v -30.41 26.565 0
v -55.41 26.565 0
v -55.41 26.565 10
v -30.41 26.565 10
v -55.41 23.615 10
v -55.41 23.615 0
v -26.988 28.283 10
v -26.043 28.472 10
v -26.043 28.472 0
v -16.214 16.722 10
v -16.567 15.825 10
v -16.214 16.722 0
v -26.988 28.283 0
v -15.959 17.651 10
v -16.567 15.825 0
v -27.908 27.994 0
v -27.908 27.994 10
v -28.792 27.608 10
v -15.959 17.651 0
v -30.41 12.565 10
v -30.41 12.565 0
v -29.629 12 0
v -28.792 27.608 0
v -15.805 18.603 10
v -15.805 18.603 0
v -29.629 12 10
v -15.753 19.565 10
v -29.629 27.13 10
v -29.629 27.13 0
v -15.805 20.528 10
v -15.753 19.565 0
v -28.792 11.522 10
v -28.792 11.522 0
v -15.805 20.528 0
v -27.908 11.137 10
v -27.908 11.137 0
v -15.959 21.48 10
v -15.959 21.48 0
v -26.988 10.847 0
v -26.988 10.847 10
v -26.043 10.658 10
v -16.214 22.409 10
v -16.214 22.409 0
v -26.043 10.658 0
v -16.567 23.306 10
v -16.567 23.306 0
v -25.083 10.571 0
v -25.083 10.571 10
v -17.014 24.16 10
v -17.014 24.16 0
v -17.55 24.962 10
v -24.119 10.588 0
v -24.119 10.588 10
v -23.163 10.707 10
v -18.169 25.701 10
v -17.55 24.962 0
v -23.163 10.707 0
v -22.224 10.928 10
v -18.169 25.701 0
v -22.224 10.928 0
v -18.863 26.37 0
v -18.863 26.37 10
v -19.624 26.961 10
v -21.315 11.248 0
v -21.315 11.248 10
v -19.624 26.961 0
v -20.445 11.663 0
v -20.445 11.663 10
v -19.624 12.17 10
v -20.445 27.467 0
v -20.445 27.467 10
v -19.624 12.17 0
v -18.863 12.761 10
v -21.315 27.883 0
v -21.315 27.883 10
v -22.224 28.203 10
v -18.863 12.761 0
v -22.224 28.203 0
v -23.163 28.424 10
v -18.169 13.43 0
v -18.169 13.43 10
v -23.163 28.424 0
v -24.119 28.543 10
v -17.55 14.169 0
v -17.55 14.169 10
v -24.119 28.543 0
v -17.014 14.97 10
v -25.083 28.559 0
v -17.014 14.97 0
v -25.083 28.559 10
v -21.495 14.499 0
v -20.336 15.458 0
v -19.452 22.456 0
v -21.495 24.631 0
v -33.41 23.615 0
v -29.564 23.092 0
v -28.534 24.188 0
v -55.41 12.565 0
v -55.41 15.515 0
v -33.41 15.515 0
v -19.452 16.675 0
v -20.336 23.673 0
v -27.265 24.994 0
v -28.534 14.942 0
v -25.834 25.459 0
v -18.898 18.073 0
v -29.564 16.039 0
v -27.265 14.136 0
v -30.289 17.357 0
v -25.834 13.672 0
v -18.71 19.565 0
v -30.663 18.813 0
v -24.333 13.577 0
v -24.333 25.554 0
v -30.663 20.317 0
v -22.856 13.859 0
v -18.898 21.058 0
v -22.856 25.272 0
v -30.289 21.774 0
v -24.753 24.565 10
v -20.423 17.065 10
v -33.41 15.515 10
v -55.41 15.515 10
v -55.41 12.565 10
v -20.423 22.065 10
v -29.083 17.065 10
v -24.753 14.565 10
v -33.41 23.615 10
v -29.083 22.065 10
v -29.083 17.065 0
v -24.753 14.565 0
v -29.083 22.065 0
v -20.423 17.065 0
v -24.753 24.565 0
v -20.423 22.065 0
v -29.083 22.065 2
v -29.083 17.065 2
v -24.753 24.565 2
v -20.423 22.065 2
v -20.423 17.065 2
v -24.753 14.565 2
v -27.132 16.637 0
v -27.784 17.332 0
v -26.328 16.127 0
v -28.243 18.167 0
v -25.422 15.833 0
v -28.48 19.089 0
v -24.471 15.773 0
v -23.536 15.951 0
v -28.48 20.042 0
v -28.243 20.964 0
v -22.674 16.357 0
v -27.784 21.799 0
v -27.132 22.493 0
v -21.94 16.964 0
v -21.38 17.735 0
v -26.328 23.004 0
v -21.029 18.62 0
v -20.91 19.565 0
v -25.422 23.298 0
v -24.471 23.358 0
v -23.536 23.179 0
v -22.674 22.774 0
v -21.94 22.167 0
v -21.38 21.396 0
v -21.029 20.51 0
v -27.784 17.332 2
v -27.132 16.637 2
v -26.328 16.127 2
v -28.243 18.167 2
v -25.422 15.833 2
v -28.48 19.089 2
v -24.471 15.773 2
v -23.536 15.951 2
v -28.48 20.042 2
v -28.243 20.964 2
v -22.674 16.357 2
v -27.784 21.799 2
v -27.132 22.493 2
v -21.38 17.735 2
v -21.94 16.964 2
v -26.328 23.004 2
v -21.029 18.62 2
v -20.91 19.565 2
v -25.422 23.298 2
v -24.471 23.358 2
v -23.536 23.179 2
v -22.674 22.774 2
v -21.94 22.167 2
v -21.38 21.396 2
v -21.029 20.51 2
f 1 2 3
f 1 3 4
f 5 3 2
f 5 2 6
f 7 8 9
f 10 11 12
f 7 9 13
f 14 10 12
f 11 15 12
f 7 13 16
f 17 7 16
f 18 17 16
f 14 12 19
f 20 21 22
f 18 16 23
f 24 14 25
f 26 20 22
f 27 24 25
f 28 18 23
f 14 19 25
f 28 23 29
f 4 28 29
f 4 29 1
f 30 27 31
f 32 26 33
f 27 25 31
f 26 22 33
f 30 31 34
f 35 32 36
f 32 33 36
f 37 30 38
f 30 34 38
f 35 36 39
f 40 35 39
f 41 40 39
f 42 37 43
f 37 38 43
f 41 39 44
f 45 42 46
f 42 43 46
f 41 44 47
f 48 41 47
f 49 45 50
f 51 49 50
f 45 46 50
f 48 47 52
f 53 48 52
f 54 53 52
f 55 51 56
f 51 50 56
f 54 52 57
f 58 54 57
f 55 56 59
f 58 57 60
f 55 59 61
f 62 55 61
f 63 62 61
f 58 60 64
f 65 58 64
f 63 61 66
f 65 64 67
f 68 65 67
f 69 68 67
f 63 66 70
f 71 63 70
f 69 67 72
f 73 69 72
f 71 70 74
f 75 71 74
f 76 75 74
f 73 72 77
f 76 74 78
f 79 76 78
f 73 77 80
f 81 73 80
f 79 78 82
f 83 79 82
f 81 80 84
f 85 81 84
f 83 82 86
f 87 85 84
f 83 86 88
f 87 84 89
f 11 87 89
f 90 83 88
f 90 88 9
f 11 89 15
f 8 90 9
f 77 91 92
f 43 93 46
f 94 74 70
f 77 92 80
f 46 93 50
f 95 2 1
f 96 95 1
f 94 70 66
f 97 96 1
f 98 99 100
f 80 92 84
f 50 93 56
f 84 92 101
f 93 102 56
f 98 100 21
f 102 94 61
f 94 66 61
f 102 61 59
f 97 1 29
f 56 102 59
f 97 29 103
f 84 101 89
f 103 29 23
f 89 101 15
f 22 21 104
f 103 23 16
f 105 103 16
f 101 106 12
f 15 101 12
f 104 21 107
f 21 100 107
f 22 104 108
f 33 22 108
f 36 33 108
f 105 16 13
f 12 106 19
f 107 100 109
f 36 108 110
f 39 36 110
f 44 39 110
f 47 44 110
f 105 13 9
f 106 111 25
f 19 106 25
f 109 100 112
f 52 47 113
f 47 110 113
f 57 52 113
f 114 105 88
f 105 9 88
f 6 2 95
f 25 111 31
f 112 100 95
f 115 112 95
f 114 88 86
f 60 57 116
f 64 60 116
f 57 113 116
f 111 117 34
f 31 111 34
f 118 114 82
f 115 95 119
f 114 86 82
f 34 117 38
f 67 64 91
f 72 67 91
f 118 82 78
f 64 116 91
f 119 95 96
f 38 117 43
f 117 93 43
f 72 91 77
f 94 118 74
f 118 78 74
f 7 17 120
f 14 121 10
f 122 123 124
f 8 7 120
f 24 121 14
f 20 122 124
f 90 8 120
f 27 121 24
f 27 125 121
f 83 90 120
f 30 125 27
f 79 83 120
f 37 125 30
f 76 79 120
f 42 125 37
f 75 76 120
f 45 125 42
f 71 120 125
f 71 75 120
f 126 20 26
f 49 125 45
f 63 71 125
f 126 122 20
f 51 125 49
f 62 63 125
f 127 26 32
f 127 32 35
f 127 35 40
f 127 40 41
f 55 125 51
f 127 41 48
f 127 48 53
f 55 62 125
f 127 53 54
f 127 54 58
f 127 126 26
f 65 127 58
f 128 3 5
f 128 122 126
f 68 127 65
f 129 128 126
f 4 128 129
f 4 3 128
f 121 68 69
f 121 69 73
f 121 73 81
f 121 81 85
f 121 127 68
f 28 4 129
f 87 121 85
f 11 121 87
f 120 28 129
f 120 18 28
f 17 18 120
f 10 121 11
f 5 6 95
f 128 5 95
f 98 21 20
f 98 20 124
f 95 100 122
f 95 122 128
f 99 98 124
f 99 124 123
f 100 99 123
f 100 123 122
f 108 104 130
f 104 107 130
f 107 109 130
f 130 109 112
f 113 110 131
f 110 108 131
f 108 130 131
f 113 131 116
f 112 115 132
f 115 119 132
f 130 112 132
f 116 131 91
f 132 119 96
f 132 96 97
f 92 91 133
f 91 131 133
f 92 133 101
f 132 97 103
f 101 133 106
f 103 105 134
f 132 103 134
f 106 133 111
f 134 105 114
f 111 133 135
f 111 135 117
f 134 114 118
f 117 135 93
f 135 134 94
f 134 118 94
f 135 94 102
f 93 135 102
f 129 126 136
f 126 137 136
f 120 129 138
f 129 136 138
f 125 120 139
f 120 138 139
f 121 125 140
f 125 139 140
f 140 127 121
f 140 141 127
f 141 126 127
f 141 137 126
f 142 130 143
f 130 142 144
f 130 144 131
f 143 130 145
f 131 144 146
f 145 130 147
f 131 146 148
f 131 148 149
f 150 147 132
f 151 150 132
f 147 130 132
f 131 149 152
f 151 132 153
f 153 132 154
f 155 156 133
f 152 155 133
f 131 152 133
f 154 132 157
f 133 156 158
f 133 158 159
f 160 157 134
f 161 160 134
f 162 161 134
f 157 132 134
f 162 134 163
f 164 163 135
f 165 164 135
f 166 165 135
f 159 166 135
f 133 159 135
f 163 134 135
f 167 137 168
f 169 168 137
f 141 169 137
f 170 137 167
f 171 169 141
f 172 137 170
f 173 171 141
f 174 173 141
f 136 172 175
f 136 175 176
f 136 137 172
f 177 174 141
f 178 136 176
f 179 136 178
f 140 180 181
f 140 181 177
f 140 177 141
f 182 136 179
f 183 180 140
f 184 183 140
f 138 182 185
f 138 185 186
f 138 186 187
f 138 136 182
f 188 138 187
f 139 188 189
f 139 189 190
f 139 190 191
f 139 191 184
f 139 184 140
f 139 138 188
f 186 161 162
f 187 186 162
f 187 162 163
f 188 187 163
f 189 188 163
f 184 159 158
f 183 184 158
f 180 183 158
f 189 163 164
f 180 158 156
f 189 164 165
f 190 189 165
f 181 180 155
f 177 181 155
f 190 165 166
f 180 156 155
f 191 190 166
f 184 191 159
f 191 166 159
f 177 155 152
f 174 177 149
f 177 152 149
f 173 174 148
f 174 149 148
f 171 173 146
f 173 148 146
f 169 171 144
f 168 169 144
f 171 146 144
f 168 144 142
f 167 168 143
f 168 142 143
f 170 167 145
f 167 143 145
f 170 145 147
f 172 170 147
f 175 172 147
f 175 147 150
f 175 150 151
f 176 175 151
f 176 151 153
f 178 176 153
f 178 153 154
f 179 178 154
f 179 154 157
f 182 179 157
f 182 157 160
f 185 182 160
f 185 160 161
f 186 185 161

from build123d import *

# Parameters (mm, degrees)
PAD_DEPTH     = 10
SKETCH001_R   = 6
SKETCH001_R_2 = 3.8
PAD001_DEPTH  = 2


with BuildPart() as part:
    # Sketch → Pad (new body)
    with BuildSketch(Plane.XY):
        with BuildLine():
            Line((-55.40988, 26.565392), (-30.40988, 26.565392))
            ThreePointArc((-30.40988, 12.565392), (-15.753026, 19.565392), (-30.40988, 26.565392))
            Line((-30.40988, 12.565392), (-55.40988, 12.565392))
            Line((-55.40988, 12.565392), (-55.40988, 15.515392))
            Line((-55.40988, 15.515392), (-33.40988, 15.515392))
            Line((-33.40988, 15.515392), (-33.40988, 23.615392))
            Line((-55.40988, 23.615392), (-33.40988, 23.615392))
            Line((-55.40988, 26.565392), (-55.40988, 23.615392))
        make_face()
        Polygon((-20.422899, 22.065392), (-20.422899, 17.065392), (-24.753026, 14.565392), (-29.083153, 17.065392), (-29.083153, 22.065392), (-24.753026, 24.565392), align=None, mode=Mode.SUBTRACT)
    extrude(amount=PAD_DEPTH)

    # Sketch001 → Pad001 (new body)
    with BuildSketch(Plane(origin=(0, 0, 0), x_dir=(1, 0, 0), z_dir=(0, 0, -1))):
        with Locations((-24.70988, -19.565392)):
            Circle(SKETCH001_R)
        with Locations((-24.70988, -19.565392)):
            Circle(SKETCH001_R_2, mode=Mode.SUBTRACT)
    extrude(amount=-PAD001_DEPTH)


solid = part.part
